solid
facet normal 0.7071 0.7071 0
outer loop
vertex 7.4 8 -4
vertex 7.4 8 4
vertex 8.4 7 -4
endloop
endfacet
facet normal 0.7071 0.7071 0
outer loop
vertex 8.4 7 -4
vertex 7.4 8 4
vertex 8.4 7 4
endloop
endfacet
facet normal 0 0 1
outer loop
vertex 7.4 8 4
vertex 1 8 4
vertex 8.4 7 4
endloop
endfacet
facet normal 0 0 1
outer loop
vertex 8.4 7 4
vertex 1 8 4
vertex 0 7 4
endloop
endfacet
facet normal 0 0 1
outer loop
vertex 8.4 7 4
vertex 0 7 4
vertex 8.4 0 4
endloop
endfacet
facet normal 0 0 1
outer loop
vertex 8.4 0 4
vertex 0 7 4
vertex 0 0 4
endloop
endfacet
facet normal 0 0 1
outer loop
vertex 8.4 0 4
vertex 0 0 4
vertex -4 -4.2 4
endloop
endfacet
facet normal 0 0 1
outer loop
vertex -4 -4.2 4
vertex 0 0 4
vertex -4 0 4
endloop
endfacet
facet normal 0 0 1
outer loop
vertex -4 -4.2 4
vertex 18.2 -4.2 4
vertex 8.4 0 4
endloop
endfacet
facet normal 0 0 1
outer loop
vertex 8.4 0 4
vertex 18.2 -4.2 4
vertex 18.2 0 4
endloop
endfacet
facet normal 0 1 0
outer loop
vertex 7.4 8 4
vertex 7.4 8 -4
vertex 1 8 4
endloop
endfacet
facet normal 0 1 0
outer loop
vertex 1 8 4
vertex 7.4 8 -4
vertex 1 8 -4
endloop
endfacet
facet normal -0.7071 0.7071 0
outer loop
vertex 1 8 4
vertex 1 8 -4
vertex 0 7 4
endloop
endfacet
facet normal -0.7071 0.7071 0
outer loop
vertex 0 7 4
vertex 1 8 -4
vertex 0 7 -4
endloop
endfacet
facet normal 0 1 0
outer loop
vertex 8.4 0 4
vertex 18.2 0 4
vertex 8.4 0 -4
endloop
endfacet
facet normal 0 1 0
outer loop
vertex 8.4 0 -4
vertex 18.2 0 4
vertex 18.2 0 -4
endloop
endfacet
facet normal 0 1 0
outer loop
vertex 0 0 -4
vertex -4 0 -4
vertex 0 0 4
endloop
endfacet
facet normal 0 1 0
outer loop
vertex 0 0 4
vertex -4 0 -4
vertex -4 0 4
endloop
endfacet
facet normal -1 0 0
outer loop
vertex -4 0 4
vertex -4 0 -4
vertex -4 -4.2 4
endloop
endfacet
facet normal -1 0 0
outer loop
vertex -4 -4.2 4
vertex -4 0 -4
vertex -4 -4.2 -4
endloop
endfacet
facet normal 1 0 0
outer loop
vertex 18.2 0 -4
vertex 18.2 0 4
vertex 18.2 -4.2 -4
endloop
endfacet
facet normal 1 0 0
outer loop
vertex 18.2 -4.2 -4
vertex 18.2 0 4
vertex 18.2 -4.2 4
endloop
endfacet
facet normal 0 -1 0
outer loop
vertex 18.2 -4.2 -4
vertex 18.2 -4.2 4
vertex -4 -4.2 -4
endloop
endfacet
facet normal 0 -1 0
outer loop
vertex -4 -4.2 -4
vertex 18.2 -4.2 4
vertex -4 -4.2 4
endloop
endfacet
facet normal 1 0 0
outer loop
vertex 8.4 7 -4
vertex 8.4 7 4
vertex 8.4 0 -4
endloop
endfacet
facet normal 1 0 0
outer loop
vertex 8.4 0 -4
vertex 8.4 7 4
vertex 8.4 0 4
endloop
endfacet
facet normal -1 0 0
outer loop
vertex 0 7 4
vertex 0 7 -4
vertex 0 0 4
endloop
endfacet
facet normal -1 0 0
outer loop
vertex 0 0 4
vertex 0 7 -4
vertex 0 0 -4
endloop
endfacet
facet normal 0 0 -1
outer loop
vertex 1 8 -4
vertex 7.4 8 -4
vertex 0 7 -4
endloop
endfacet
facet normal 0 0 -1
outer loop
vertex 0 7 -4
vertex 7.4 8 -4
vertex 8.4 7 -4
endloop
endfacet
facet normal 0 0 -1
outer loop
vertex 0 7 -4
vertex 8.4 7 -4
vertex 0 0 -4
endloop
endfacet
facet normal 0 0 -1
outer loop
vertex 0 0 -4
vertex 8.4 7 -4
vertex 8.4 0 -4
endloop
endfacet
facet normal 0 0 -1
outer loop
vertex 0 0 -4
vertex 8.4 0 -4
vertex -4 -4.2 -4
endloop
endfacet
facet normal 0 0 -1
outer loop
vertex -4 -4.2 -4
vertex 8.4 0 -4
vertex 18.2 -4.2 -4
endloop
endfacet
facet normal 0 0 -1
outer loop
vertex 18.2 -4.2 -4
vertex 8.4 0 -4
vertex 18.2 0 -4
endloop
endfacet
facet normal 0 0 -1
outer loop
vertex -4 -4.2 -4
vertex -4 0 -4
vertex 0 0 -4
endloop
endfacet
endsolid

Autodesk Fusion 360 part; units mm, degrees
sketch "Sketch2" plane through (0, 0, 0) normal (0, 1, 0) x (1, 0, 0)
  line L0 (0, 4) -> (18.2, 4)
  line L1 (18.2, 4) -> (18.2, -4)
  line L2 (18.2, -4) -> (0, -4)
  line L3 (0, -4) -> (0, 4)
  line L4 (8.4, 4) -> (8.4, -4)
  line L5 (0, 0) -> (8.4, 0) construction
  line L6 (4.2, 4) -> (4.2, -4) construction
  line L7 (0, 4) -> (-4, 4)
  line L8 (-4, 4) -> (-4, -4)
  line L9 (-4, -4) -> (0, -4)
  line L10 (0, -4) -> (0, 4)
  point P0 (4.2, 0)
  dimension "d5" = 8
  dimension "d6" = 8.4
  dimension "d7" = 14
  dimension "d14" = 4
  dimension "d15" = 9.8
extrude "Extrude2" add sketch "Sketch2" along normal blind 8 contours L0 L2 L3 L4 L10
extrude "Extrude3" add sketch "Sketch2" against normal blind 4.2
chamfer "Chamfer1" distance 1 angle 45 2 edges at (0, 8, 0) (8.4, 8, 0)
sketch "Sketch1" plane through (0, 0, 0) normal (0, 1, 0) x (1, 0, 0)
  line L0 (3, -2.5) -> (-3, -2.5)
  line L1 (-3, -2.5) -> (-3, 2.5)
  line L2 (-3, 2.5) -> (3, 2.5)
  line L3 (3, 2.5) -> (3, -2.5)
  line L4 (3, -2.5) -> (-3, 2.5) construction
  line L5 (-3, -2.5) -> (3, 2.5) construction
  dimension "d1" = 5
  dimension "d2" = 6
extrude "Extrude1" [suppressed]
